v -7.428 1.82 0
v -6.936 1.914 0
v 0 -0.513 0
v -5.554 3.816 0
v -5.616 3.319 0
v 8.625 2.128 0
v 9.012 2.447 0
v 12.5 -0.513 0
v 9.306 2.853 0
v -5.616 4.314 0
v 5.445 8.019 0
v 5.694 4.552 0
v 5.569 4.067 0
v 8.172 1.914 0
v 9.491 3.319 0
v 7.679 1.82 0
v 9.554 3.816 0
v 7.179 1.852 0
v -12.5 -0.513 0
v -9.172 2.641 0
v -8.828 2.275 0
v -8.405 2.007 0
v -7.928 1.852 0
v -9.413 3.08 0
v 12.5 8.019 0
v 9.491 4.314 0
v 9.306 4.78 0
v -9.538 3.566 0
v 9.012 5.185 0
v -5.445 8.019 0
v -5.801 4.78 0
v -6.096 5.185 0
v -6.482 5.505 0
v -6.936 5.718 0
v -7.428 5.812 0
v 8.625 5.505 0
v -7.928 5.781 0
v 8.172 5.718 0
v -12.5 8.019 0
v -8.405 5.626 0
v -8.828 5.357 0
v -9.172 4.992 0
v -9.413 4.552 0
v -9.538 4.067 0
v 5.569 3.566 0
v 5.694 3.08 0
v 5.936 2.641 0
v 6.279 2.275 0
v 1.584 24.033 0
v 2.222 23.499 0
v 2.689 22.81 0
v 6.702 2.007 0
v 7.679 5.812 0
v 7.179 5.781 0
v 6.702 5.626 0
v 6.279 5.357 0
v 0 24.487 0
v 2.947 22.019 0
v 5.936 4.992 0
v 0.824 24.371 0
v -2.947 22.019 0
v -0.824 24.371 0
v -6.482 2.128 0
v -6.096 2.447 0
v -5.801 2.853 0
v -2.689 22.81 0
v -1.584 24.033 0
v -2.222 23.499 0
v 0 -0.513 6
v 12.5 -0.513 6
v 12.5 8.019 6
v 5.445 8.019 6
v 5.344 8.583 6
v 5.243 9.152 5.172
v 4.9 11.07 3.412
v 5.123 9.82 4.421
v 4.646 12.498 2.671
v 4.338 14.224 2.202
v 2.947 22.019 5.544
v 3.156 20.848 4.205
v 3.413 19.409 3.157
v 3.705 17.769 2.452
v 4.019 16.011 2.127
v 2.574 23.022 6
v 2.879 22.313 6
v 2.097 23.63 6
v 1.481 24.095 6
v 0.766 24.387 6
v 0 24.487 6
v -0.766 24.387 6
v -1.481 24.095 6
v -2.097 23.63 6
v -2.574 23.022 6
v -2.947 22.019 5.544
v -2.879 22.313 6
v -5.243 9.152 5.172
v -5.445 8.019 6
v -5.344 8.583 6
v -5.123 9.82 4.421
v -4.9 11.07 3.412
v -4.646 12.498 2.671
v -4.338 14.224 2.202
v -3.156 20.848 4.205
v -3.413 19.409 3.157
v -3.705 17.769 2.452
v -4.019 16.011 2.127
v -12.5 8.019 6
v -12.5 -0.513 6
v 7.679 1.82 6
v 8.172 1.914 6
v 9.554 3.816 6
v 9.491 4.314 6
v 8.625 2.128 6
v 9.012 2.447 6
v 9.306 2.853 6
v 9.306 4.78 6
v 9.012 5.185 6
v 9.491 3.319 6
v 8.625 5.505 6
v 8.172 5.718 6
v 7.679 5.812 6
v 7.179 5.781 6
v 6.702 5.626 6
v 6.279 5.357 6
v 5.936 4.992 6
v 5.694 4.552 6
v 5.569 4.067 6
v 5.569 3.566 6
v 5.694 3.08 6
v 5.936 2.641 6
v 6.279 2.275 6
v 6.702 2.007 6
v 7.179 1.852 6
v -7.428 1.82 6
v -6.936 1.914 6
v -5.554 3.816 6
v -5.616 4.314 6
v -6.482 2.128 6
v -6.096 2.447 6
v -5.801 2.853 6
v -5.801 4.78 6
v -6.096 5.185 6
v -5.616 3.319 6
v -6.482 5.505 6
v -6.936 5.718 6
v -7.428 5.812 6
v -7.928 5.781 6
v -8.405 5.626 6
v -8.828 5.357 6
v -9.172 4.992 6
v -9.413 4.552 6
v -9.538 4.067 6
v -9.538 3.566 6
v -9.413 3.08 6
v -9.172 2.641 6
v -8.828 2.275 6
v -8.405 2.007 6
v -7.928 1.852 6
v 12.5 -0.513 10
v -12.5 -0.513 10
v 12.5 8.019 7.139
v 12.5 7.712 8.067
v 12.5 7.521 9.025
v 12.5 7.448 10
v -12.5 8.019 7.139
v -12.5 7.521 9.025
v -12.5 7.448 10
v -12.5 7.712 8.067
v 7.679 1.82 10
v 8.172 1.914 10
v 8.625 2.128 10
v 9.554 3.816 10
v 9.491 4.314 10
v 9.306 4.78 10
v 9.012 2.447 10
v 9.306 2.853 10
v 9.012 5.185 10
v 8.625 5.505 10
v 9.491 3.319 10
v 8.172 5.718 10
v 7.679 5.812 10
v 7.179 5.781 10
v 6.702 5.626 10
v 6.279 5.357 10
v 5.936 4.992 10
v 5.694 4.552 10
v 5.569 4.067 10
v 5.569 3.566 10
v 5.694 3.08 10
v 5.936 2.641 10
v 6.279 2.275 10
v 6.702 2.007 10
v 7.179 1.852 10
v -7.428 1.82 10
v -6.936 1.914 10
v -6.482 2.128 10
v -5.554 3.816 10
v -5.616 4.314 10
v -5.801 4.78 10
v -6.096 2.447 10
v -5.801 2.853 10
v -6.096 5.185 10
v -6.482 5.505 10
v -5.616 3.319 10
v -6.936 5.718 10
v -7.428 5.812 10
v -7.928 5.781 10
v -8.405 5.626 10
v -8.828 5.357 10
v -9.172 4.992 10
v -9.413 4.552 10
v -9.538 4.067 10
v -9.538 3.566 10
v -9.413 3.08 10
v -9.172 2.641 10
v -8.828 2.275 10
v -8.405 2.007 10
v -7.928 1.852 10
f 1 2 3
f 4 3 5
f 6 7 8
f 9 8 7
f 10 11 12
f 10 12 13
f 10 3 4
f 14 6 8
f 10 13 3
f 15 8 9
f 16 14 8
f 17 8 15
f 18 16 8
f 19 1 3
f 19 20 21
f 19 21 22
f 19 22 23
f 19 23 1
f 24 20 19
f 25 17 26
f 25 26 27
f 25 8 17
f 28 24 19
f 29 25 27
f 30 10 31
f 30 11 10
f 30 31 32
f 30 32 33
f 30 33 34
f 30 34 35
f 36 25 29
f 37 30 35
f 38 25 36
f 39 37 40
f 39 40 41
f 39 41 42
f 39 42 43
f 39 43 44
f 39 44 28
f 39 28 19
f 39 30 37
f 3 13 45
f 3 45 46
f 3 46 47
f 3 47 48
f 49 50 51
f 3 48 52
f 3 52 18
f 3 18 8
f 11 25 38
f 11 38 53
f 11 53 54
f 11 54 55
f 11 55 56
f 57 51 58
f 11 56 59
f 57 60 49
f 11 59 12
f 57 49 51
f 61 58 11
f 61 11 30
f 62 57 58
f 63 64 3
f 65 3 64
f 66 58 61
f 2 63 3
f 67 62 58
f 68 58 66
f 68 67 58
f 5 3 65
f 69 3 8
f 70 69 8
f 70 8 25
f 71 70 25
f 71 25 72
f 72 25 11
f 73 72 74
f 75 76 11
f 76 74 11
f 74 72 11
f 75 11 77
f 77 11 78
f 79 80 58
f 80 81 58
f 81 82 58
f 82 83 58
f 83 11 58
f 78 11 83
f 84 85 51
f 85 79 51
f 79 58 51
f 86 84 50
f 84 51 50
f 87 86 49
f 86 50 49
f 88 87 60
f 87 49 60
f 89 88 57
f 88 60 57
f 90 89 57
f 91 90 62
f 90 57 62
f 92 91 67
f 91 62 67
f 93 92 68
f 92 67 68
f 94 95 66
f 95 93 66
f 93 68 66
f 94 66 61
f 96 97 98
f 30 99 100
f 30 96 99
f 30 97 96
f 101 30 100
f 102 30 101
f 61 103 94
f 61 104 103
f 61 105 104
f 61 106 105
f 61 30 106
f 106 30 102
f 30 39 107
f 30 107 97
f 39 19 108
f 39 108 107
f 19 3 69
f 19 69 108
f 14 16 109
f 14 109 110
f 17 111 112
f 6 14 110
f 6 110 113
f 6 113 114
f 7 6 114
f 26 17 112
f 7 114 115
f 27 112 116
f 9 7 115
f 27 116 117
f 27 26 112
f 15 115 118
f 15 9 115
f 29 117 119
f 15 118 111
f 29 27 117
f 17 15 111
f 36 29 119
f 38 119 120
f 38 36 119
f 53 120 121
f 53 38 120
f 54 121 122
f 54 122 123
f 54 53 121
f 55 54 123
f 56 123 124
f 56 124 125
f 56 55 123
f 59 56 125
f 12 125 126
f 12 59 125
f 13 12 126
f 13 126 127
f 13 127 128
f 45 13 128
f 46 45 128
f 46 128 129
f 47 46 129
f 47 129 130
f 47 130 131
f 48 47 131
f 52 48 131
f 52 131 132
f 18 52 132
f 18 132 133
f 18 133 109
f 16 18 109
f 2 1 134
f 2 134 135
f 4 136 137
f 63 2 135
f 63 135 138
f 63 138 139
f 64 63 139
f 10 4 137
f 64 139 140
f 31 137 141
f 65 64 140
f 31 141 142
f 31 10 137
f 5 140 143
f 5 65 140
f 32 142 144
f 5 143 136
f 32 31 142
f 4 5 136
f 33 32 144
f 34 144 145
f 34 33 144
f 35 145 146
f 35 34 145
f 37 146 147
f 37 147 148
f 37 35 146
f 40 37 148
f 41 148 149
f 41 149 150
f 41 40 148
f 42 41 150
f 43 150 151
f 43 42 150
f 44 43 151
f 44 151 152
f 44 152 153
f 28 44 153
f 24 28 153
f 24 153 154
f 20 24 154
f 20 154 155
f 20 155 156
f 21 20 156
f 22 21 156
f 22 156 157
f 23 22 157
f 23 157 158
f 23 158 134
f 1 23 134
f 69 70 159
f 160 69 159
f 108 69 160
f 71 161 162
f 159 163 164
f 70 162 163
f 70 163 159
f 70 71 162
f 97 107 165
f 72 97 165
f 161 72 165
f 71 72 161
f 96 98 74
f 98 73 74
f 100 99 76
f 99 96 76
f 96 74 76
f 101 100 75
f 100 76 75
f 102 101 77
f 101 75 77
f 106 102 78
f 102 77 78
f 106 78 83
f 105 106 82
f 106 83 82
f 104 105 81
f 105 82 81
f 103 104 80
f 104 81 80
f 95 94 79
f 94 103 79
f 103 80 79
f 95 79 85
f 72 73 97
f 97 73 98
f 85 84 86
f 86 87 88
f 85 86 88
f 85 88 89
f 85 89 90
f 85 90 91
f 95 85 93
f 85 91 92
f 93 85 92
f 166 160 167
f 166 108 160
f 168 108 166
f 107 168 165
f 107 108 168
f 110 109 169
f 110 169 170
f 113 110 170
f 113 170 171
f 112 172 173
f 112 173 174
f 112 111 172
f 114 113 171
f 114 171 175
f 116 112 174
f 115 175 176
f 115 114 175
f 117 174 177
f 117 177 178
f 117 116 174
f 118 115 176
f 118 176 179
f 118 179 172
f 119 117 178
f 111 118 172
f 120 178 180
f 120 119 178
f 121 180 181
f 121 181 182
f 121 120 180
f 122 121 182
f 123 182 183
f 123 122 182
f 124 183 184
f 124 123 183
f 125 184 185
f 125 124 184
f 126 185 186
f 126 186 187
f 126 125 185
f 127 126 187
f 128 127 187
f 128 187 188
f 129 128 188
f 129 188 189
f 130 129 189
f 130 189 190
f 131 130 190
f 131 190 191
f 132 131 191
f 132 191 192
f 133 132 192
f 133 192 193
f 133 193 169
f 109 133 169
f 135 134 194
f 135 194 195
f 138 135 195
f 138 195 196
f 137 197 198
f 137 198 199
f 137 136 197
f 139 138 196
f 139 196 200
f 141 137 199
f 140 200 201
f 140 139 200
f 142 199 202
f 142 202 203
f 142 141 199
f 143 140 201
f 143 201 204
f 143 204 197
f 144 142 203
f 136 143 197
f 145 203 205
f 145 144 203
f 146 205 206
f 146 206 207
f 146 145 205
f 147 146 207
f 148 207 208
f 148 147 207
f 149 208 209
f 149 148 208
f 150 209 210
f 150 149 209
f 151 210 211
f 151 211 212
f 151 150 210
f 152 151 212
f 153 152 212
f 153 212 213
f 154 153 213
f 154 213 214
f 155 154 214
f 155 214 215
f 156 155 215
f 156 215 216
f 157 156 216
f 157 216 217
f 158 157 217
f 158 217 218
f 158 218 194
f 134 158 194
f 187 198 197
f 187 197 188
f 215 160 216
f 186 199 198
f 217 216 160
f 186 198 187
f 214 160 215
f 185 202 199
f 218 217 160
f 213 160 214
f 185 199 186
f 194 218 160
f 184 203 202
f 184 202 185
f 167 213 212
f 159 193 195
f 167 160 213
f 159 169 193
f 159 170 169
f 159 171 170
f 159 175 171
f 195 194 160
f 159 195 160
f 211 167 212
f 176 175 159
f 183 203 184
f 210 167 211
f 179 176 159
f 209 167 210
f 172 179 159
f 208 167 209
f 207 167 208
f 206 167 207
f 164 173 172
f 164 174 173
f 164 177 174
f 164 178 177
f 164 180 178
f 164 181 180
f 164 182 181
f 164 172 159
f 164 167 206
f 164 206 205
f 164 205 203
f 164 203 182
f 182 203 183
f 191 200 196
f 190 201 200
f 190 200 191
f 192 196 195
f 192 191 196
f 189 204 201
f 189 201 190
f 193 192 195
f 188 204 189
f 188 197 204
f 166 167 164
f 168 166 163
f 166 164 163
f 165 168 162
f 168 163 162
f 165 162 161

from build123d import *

# Parameters (mm, degrees)
SKETCH001_R  = 2
PAD_DEPTH    = 6
SKETCH_W     = 25
SKETCH_H     = 8.532326
SKETCH_R     = 2
PAD001_DEPTH = 4
SKETCH002_R  = 8
POCKET_DEPTH = 25.001


with BuildPart() as part:
    # Sketch001 → Pad (new body)
    with BuildSketch(Plane.XY):
        with BuildLine():
            Line((0, -0.513451), (12.5, -0.513451))
            Line((12.5, -0.513451), (12.5, 8.018875))
            Line((12.5, 8.018875), (5.444822, 8.018875))
            Line((5.444822, 8.018875), (2.947073, 22.018734))
            ThreePointArc((2.947073, 22.018734), (1.921936, 23.788122), (0, 24.486549))
            ThreePointArc((0, 24.486549), (-1.921936, 23.788122), (-2.947073, 22.018734))
            Line((-5.444822, 8.018875), (-2.947073, 22.018734))
            Line((-12.5, 8.018875), (-5.444822, 8.018875))
            Line((-12.5, -0.513451), (-12.5, 8.018875))
            Line((0, -0.513451), (-12.5, -0.513451))
        make_face()
        with Locations((-7.553649, 3.816244)):
            Circle(SKETCH001_R, mode=Mode.SUBTRACT)
        with Locations((7.553649, 3.816244)):
            Circle(SKETCH001_R, mode=Mode.SUBTRACT)
    extrude(amount=PAD_DEPTH)

    # Sketch → Pad001 (new body)
    with BuildSketch(Plane.XY.offset(6)):
        with Locations((0, 3.752712)):
            Rectangle(SKETCH_W, SKETCH_H)
        with Locations((-7.553649, 3.816244)):
            Circle(SKETCH_R, mode=Mode.SUBTRACT)
        with Locations((7.553649, 3.816244)):
            Circle(SKETCH_R, mode=Mode.SUBTRACT)
    extrude(amount=PAD001_DEPTH)

    # Sketch002 → Pocket (cut, through all)
    with BuildSketch(Plane.YZ.offset(12.5)):
        with Locations((15.447758, 10.107347)):
            Circle(SKETCH002_R)
    extrude(amount=-POCKET_DEPTH, mode=Mode.SUBTRACT)


solid = part.part
